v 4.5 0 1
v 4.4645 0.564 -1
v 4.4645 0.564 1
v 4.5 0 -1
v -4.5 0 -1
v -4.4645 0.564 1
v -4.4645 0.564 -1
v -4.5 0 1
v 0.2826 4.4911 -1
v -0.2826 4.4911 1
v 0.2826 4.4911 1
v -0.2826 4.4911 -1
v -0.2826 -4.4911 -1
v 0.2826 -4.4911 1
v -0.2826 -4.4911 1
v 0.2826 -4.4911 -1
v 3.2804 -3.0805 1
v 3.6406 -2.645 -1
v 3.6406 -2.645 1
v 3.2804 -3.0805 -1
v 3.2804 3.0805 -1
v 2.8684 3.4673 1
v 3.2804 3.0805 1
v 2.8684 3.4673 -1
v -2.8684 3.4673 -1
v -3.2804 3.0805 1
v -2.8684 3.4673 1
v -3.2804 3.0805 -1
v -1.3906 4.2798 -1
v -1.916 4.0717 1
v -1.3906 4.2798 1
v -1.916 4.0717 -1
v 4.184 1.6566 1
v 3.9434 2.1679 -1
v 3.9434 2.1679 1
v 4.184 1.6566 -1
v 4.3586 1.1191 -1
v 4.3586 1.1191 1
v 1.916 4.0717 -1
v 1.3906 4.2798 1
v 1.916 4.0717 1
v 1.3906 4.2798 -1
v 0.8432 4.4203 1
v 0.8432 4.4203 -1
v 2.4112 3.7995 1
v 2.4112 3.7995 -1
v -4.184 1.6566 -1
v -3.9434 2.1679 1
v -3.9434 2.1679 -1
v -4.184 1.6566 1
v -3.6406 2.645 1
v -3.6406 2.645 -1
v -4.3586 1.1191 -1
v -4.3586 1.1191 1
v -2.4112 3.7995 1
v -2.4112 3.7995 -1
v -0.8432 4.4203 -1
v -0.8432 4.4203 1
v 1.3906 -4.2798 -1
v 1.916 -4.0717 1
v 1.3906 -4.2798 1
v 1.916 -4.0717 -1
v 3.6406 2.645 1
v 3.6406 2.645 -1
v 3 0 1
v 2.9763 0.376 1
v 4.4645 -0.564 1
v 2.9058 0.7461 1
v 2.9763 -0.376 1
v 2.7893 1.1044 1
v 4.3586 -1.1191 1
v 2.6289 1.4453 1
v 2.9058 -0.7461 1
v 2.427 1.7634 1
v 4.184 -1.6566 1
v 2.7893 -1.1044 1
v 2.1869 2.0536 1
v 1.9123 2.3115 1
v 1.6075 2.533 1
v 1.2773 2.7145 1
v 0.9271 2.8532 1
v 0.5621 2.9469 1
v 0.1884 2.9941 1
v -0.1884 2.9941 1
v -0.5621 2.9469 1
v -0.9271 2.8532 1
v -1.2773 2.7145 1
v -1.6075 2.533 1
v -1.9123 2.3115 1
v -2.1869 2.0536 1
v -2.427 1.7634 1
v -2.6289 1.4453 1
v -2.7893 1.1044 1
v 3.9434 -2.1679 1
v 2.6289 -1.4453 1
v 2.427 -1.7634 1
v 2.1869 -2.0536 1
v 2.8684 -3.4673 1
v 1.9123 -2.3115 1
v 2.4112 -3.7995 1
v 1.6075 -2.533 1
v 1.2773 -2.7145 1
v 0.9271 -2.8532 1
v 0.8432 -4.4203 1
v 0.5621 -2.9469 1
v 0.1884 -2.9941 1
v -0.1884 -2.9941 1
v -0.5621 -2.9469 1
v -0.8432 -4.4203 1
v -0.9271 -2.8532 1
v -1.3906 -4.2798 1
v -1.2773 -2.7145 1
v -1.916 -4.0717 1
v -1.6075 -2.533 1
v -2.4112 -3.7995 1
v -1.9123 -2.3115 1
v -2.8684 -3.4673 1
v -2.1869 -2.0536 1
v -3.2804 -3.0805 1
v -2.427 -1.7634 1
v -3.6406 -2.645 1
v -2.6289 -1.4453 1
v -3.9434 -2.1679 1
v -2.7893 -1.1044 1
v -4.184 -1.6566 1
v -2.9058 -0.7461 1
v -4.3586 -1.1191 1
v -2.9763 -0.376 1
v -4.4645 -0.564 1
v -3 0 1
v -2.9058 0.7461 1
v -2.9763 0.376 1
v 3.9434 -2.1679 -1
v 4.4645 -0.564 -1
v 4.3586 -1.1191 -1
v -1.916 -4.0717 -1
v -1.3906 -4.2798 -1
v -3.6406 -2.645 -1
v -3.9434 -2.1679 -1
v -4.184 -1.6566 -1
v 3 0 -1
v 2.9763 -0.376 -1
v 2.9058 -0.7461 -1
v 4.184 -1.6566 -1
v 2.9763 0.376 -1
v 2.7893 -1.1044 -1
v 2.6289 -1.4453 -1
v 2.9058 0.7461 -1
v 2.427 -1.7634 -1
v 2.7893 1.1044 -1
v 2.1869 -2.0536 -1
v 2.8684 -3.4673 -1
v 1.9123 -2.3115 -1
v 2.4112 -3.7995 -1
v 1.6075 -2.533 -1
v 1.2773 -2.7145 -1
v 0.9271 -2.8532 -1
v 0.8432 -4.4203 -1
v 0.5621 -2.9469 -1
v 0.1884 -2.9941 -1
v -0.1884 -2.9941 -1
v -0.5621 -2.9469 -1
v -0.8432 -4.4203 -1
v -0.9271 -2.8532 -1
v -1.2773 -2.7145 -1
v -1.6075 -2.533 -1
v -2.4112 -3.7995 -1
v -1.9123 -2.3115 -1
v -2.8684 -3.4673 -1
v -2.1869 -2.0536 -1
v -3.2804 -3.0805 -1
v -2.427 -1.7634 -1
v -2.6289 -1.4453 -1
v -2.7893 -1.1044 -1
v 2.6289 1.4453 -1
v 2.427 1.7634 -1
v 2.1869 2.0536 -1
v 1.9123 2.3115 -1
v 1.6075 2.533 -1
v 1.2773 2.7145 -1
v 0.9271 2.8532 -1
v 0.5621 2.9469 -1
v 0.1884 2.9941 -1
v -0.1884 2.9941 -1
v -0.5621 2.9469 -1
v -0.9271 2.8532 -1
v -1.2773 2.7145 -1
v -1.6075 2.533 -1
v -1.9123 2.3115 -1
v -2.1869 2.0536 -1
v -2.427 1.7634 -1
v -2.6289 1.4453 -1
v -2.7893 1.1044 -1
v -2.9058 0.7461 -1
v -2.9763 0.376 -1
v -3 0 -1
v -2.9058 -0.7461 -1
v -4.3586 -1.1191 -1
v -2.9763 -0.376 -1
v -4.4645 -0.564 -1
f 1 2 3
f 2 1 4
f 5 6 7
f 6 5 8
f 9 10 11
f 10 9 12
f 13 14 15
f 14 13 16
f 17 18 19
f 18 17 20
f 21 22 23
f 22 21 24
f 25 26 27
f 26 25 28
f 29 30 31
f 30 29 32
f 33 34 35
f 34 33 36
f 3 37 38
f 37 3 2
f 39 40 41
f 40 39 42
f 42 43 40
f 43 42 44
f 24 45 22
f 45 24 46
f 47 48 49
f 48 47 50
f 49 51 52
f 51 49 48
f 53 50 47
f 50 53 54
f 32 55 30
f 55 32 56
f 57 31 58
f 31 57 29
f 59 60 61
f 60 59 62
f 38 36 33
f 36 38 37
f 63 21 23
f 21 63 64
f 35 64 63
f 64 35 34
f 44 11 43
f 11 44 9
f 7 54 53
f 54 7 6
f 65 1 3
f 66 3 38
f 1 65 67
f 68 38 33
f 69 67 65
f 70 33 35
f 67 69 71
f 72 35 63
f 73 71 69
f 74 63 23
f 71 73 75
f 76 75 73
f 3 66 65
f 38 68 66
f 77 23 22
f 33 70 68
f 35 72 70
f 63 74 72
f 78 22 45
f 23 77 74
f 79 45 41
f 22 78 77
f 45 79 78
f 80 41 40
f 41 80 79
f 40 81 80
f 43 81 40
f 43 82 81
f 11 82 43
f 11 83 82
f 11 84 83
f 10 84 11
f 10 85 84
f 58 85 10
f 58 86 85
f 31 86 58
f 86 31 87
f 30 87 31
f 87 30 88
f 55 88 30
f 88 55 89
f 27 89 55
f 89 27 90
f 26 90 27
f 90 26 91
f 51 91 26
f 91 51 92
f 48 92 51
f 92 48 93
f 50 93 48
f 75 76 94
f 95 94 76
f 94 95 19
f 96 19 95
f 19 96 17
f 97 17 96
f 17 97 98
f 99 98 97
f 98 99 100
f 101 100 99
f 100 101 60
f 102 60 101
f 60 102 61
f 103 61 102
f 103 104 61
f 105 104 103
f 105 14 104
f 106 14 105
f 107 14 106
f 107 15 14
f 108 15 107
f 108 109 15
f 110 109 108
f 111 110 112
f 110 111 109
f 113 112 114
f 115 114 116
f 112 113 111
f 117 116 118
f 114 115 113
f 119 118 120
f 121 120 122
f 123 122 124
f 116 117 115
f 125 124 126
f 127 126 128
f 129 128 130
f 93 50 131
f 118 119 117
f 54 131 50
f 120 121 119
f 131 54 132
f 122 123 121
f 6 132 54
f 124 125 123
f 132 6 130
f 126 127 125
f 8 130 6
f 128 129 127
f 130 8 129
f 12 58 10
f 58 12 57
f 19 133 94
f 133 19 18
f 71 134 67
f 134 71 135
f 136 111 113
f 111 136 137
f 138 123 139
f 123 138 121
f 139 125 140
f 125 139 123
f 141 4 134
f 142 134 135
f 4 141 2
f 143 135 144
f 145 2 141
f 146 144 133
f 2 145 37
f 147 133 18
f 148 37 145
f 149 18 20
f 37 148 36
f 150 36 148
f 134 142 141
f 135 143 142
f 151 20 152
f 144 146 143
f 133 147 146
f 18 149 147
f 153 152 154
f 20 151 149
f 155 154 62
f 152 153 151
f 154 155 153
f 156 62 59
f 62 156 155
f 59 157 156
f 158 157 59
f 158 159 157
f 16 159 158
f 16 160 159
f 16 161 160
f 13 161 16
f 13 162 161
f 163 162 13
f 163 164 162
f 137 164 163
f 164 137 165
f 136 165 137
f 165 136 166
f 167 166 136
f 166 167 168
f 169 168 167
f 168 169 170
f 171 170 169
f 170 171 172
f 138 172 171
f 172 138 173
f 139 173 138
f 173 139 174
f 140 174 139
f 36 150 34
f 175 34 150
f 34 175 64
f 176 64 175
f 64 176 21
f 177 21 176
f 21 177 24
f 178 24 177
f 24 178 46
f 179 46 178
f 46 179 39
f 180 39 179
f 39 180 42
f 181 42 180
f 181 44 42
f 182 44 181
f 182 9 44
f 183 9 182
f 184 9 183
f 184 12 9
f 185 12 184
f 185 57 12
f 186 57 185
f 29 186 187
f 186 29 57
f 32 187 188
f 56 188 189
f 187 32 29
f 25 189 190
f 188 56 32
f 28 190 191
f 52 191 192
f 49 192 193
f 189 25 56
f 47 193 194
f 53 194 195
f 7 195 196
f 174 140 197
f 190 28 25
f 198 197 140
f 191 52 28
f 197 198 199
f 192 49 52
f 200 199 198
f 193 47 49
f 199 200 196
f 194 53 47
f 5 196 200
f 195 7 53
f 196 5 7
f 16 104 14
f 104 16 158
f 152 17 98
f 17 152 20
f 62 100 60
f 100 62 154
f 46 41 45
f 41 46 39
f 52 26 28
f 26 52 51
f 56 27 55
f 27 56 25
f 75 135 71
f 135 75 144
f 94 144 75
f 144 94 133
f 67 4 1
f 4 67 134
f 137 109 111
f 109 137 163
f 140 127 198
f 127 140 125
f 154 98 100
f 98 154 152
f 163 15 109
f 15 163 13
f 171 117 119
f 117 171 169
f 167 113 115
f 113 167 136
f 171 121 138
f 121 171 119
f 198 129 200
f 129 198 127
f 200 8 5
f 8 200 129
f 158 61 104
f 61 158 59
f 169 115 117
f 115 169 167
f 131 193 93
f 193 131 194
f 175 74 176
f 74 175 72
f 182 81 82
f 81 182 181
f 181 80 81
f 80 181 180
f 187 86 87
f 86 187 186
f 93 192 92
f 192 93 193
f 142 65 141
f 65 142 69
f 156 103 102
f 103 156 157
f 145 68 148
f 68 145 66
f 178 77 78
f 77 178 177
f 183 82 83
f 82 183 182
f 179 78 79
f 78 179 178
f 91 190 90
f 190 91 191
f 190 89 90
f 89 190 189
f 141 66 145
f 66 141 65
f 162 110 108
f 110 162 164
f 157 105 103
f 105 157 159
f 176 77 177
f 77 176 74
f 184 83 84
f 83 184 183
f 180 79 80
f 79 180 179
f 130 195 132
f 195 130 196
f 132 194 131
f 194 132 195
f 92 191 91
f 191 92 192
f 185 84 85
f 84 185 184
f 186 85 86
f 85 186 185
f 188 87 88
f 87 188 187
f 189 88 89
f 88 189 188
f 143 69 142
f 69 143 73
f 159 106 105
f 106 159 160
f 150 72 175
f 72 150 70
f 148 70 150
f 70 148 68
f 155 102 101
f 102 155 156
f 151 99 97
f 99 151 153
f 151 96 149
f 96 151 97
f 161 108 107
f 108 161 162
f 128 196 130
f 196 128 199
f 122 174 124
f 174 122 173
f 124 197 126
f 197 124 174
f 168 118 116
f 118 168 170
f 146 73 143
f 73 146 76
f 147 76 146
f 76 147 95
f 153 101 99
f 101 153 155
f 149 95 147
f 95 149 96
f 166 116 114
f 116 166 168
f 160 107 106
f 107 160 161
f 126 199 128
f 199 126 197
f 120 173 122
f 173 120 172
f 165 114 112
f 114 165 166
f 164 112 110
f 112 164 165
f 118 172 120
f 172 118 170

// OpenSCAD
$fn = 50;


difference() {
	union() {
		translate(v = [0, 0, -1.0000000000]) {
			cylinder(h = 2, r = 4.5000000000);
		}
	}
	union() {
		translate(v = [0, 0, -100.0000000000]) {
			cylinder(h = 200, r = 3);
		}
	}
}
